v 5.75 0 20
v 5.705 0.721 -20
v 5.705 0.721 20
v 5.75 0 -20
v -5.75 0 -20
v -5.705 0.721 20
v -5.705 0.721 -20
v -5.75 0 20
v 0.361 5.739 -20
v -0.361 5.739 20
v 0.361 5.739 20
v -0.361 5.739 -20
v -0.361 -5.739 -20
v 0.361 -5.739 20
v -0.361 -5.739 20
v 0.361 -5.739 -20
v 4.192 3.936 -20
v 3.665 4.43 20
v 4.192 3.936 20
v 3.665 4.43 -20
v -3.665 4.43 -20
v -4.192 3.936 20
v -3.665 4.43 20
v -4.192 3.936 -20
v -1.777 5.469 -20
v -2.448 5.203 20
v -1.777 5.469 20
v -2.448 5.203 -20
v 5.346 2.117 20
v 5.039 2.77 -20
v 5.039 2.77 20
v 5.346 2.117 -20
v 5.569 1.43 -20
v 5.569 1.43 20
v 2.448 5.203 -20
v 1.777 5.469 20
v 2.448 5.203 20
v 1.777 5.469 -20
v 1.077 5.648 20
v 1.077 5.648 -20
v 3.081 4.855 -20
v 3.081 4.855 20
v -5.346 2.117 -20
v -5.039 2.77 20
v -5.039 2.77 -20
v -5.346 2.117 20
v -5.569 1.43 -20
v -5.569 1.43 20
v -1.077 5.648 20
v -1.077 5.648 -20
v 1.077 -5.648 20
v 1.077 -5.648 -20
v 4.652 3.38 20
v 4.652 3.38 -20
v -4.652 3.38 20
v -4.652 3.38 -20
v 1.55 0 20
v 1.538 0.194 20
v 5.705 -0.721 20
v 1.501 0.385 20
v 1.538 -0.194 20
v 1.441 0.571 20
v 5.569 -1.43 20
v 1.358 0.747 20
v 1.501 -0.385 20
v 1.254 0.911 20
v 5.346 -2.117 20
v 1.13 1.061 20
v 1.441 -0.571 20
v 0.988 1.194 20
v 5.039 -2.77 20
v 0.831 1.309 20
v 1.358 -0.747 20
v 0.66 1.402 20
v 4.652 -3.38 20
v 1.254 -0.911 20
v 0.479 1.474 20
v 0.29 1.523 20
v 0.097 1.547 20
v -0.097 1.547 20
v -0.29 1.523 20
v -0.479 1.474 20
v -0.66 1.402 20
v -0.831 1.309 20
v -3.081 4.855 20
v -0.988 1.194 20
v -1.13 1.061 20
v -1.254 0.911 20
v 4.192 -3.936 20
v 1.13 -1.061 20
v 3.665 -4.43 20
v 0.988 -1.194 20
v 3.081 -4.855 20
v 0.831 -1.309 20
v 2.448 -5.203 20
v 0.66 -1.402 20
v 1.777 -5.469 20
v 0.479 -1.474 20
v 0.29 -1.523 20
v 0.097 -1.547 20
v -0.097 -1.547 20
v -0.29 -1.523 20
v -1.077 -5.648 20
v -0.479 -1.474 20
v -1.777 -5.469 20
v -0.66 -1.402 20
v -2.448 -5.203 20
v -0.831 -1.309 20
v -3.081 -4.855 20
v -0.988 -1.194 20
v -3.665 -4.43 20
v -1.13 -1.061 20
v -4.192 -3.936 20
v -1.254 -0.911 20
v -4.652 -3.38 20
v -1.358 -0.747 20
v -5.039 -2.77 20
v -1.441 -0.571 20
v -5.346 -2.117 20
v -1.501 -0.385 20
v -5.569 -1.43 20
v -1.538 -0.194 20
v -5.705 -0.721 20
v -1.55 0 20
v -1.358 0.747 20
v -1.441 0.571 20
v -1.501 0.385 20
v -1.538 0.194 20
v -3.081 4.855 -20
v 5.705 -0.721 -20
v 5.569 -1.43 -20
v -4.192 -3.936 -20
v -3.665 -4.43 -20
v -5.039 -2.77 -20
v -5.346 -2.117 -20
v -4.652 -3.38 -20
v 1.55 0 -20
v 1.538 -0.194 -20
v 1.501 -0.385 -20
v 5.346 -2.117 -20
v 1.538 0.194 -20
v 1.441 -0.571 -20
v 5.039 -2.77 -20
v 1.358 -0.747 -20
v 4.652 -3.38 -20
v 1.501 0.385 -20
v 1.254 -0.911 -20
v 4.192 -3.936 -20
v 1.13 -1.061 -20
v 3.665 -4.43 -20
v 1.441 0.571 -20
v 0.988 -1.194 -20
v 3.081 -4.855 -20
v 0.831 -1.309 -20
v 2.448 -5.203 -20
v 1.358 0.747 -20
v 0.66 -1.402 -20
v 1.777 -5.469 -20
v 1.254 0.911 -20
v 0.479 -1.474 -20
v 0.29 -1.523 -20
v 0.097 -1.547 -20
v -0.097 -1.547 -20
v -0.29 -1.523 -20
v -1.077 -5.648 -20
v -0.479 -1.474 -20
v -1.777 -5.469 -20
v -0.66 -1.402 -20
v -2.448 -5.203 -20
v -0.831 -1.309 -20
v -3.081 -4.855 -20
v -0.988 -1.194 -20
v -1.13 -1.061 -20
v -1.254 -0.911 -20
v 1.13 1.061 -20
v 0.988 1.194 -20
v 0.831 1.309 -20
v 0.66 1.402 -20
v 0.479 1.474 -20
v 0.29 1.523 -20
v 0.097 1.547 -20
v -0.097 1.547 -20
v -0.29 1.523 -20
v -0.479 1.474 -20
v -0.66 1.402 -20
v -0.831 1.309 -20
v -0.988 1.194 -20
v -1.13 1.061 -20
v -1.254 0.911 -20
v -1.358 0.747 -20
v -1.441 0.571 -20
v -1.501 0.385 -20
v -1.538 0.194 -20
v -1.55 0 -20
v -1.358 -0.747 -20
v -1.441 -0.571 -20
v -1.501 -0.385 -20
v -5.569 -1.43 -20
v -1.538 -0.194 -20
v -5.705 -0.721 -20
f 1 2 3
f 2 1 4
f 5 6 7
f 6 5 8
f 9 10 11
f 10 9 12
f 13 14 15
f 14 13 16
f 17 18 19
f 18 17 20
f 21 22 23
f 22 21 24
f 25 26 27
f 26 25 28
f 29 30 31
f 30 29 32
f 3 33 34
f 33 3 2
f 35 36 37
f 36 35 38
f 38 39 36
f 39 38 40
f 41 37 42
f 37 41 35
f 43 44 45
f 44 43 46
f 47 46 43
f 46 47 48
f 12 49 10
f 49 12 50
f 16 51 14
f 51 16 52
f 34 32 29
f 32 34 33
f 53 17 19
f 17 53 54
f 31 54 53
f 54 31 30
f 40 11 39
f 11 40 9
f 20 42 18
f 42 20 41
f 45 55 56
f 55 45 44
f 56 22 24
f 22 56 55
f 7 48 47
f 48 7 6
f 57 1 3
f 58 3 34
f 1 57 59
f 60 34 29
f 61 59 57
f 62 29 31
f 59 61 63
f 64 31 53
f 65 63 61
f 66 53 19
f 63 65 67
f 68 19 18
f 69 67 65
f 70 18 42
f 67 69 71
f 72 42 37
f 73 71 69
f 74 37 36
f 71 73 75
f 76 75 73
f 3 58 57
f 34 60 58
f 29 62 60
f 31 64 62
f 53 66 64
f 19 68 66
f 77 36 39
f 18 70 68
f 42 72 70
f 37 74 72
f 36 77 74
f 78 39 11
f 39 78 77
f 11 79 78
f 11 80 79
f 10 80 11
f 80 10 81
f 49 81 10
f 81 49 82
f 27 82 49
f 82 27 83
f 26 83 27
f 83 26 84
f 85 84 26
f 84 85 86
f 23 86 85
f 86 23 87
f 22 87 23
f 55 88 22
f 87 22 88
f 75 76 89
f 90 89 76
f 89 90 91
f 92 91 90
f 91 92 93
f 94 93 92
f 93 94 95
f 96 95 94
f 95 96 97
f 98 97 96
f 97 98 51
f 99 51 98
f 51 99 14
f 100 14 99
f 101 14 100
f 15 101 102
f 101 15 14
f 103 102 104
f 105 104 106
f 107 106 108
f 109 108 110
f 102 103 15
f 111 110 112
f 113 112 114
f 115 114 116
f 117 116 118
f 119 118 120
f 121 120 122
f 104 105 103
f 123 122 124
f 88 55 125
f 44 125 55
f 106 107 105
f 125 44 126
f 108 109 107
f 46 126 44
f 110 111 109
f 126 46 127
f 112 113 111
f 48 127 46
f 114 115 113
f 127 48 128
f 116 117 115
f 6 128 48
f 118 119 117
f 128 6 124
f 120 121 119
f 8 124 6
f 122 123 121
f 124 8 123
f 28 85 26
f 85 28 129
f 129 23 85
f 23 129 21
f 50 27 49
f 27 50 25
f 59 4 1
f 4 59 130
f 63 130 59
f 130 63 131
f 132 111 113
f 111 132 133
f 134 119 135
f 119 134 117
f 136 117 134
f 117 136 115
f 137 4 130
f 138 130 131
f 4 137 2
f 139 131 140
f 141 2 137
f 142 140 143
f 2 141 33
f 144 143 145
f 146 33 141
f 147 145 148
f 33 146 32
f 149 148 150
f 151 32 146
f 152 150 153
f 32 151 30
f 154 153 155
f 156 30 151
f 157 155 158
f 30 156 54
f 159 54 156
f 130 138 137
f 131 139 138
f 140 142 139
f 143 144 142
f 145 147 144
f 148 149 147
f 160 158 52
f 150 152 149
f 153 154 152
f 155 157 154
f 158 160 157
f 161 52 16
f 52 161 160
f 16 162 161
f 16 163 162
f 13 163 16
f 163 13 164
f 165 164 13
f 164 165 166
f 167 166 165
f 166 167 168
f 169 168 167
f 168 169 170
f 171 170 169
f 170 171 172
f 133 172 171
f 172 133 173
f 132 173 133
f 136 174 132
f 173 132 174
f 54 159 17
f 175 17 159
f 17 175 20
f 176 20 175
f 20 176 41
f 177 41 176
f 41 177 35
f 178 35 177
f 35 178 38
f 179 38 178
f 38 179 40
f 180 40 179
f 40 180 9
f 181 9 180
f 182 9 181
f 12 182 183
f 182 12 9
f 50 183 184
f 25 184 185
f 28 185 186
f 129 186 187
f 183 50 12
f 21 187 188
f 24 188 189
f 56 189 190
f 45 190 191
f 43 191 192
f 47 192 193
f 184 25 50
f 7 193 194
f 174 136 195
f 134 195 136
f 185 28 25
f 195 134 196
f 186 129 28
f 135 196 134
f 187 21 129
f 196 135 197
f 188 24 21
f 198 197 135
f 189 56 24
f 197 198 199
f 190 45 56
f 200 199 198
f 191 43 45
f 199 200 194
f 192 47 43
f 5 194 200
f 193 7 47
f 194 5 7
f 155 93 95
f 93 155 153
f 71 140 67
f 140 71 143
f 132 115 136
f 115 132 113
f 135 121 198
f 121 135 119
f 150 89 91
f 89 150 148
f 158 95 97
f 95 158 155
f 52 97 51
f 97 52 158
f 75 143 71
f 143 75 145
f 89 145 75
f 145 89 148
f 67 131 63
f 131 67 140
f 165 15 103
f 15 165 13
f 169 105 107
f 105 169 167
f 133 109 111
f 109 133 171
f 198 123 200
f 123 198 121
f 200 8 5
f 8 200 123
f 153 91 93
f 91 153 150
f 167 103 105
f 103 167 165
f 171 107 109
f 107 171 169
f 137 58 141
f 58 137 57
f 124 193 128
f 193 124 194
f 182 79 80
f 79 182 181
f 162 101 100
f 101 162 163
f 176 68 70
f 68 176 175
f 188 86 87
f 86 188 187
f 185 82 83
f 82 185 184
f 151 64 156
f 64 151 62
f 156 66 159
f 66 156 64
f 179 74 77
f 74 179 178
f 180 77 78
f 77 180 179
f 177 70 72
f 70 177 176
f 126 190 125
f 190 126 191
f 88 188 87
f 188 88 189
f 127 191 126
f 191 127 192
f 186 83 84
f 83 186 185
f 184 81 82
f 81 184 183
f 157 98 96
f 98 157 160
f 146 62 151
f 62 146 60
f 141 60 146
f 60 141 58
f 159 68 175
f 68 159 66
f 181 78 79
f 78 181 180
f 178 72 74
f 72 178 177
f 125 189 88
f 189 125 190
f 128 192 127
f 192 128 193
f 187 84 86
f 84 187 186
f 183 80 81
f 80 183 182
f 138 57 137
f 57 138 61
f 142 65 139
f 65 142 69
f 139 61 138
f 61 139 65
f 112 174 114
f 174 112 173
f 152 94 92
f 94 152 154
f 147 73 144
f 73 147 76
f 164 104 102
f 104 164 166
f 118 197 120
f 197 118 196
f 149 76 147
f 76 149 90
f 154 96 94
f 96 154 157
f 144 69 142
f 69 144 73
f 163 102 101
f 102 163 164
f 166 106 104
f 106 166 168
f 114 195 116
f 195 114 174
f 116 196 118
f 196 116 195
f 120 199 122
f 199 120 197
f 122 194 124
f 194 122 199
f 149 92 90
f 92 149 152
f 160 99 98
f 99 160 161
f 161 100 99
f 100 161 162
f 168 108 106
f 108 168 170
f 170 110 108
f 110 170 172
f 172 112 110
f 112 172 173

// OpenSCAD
$fn = 50;


difference() {
	union() {
		translate(v = [0, 0, -20.0000000000]) {
			cylinder(h = 40, r = 5.7500000000);
		}
	}
	union() {
		translate(v = [0, 0, -100.0000000000]) {
			cylinder(h = 200, r = 1.5500000000);
		}
	}
}
